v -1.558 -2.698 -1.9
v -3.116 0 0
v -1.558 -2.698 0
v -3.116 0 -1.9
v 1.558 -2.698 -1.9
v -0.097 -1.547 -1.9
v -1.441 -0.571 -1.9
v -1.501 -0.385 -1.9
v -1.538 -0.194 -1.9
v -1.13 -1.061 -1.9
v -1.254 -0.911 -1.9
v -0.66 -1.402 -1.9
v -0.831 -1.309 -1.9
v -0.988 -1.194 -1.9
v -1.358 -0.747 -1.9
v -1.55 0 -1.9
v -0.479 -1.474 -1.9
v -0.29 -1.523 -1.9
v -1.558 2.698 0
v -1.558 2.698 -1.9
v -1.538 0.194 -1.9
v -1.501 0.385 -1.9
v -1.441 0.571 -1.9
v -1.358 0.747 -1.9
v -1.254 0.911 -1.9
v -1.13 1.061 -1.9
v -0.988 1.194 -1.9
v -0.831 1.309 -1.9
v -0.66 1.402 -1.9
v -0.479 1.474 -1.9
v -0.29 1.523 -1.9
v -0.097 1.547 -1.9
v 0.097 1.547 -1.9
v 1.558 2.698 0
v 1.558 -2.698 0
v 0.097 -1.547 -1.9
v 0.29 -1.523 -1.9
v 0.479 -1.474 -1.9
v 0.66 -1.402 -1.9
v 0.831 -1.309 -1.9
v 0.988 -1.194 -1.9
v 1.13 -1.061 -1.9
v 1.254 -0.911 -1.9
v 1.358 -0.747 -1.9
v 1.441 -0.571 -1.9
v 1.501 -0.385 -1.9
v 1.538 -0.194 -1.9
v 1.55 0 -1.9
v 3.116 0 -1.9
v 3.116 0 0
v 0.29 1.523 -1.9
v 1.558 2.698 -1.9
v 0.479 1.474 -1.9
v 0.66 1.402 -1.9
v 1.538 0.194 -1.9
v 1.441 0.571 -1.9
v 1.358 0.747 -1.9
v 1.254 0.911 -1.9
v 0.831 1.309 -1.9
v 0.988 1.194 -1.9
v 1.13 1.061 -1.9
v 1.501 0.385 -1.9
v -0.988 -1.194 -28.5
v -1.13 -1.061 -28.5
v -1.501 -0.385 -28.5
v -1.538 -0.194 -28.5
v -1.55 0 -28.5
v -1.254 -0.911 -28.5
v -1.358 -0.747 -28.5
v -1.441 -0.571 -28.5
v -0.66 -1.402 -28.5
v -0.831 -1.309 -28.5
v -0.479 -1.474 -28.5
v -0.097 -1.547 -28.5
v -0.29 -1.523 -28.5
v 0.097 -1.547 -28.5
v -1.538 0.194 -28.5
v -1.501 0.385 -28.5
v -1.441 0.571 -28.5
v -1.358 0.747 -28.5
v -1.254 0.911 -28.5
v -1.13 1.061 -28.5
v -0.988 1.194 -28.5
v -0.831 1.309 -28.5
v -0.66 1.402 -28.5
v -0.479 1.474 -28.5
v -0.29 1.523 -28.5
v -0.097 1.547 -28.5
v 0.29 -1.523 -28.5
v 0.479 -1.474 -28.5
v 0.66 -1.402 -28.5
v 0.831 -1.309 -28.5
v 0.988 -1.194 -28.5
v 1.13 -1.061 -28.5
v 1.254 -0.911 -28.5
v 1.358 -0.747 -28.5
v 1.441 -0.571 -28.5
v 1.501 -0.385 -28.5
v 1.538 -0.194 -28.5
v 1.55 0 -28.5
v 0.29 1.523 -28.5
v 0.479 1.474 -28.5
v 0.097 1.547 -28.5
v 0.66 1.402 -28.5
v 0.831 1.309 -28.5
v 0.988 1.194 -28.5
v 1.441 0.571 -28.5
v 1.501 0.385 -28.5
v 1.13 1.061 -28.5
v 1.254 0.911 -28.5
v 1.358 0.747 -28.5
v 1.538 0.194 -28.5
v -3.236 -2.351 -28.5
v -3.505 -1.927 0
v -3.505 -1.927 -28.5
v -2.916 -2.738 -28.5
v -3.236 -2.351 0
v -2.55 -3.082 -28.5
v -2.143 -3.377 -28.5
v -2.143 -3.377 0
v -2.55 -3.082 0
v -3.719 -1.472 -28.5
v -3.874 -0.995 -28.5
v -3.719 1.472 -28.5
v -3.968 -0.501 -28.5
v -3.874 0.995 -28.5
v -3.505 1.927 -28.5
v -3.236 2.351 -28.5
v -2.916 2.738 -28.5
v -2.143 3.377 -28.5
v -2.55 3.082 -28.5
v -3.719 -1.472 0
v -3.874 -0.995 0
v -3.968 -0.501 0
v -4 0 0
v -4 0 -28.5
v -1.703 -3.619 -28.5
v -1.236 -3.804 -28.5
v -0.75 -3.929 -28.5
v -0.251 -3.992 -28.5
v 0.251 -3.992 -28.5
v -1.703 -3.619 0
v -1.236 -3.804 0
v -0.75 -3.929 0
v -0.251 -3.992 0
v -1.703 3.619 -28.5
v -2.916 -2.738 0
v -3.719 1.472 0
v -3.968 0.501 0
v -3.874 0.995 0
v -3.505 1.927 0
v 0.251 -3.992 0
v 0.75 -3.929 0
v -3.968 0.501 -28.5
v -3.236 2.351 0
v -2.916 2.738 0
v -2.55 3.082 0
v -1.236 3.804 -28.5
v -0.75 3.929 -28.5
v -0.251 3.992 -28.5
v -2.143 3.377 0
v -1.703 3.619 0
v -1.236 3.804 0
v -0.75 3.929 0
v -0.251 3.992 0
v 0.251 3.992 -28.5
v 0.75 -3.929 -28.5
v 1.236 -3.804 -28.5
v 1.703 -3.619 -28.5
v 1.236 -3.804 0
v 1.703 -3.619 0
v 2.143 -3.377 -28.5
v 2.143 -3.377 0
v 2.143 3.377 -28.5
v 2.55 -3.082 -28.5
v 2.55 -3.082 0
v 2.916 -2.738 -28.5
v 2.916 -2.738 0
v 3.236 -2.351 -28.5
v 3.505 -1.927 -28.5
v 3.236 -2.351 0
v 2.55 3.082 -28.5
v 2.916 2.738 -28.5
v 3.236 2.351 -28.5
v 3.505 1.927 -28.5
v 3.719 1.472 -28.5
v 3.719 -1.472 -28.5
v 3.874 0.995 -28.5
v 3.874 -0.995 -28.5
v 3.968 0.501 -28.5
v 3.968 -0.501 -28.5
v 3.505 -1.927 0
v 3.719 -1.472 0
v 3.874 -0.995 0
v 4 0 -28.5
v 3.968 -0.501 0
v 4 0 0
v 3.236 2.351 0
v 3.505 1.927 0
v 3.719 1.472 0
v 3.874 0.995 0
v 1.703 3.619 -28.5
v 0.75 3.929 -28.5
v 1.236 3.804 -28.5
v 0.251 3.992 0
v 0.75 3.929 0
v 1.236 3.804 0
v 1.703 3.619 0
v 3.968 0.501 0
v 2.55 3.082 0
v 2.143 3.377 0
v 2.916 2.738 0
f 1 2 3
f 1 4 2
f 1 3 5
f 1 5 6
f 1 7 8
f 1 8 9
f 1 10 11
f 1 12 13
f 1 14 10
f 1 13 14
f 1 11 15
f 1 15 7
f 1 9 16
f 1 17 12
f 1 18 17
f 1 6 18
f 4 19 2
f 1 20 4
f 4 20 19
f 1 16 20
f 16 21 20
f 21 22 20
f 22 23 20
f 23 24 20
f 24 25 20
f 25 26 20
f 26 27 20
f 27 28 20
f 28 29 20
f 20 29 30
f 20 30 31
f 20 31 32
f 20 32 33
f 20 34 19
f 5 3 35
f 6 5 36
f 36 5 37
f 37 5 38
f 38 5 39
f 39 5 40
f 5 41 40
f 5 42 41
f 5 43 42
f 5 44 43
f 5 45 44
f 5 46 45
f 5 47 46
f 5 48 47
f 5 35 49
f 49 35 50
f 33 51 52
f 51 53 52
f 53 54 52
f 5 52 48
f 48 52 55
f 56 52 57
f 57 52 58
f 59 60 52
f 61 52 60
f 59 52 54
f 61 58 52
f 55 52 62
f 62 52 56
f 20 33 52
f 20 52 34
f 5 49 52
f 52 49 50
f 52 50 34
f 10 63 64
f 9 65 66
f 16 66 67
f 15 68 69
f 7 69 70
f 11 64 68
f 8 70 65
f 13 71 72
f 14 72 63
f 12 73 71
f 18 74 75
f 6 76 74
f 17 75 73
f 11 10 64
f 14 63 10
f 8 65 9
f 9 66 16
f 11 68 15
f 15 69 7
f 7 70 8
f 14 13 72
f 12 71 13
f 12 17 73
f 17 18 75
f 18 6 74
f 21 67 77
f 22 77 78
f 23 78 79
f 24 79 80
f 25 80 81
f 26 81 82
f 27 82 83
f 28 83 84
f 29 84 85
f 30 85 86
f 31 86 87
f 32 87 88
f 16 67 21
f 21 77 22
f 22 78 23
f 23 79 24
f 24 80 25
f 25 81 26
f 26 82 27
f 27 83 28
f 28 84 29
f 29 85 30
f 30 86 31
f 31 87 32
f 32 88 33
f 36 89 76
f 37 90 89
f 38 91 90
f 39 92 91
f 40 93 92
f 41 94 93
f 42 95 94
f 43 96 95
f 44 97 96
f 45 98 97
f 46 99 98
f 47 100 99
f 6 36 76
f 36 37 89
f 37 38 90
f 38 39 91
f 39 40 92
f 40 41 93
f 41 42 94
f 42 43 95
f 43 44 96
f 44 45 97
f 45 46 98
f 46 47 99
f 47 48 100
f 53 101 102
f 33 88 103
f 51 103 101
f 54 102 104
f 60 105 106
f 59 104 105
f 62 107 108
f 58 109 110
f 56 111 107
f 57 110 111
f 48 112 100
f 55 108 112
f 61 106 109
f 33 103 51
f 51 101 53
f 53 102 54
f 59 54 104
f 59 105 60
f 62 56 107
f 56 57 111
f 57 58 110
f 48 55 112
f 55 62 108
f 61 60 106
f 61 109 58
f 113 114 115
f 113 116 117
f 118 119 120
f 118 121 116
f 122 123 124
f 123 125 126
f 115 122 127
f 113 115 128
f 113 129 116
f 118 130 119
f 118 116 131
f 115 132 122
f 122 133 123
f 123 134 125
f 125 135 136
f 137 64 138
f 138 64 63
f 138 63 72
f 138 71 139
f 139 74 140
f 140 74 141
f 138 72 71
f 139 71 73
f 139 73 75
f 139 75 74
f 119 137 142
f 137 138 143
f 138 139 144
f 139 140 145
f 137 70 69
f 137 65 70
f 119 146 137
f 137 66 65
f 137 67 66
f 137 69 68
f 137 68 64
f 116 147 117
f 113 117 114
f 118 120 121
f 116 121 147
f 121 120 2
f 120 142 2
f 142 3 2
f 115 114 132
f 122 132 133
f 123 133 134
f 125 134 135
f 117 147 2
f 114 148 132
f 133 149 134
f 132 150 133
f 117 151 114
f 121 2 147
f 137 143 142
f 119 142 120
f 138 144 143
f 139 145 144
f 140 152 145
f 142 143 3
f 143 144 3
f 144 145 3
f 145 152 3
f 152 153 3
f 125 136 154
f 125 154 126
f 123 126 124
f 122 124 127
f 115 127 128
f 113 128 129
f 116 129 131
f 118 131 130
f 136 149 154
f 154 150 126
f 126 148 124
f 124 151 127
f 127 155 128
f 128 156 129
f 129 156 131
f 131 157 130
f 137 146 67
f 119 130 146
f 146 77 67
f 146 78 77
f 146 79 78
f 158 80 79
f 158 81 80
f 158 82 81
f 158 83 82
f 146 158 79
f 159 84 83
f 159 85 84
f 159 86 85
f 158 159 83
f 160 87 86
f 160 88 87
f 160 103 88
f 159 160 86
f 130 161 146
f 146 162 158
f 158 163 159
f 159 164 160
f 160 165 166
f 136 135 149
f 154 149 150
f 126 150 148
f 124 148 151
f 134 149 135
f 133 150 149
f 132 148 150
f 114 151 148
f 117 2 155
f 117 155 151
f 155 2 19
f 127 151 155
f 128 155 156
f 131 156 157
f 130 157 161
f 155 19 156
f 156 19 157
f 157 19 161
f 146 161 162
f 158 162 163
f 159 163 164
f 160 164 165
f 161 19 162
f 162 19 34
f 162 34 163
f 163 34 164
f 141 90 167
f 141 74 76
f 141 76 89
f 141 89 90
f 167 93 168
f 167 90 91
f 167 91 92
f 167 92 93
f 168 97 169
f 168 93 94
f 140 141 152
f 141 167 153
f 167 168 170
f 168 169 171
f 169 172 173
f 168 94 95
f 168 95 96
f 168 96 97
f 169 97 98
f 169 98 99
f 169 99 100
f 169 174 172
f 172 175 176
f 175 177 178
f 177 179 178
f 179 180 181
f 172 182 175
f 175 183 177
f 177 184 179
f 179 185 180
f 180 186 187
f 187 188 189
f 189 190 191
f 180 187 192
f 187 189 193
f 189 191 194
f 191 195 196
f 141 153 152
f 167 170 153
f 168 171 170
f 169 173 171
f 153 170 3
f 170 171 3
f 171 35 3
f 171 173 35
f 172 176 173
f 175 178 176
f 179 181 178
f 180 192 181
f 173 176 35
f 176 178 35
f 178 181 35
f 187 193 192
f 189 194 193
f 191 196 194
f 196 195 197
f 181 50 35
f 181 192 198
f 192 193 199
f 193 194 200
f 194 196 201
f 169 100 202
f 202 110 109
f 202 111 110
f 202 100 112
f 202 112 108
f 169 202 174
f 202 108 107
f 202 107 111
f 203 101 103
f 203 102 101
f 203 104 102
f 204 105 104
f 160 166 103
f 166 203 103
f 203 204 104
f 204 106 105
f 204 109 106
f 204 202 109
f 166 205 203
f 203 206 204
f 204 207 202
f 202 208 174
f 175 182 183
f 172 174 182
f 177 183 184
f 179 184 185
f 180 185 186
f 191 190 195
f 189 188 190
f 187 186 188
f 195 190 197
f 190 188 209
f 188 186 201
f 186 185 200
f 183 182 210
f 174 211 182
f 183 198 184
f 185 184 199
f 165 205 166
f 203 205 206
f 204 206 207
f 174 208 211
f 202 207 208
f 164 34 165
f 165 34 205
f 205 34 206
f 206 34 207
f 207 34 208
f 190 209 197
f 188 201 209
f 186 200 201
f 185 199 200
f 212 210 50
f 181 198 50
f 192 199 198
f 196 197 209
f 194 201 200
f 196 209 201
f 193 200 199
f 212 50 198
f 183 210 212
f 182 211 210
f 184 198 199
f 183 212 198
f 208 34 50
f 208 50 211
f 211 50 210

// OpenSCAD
$fn = 50;

difference() {
	union() {
		translate(v = [0, 0, -28.5]) {
			cylinder(h = 28.5, r = 4.0);
		}
	}
	union() {
		translate(v = [0, 0, 0]) {
			rotate(a = [0, 0, 0]) {
				difference() {
					union() {
						translate(v = [0, 0, -1.9]) {
							linear_extrude(height = 1.9) {
								polygon(points = [[3.1158, 0.0], [1.5579000000000005, 2.698361953111554], [-1.5578999999999994, 2.6983619531115544], [-3.1158, 3.815754496783323e-16], [-1.5579000000000014, -2.6983619531115535], [1.557899999999998, -2.6983619531115552]]);
							}
						}
					}
					union();
				}
			}
		}
		#translate(v = [0, 0, -100.0]) {
			cylinder(h = 200, r = 1.55);
		}
	}
}
